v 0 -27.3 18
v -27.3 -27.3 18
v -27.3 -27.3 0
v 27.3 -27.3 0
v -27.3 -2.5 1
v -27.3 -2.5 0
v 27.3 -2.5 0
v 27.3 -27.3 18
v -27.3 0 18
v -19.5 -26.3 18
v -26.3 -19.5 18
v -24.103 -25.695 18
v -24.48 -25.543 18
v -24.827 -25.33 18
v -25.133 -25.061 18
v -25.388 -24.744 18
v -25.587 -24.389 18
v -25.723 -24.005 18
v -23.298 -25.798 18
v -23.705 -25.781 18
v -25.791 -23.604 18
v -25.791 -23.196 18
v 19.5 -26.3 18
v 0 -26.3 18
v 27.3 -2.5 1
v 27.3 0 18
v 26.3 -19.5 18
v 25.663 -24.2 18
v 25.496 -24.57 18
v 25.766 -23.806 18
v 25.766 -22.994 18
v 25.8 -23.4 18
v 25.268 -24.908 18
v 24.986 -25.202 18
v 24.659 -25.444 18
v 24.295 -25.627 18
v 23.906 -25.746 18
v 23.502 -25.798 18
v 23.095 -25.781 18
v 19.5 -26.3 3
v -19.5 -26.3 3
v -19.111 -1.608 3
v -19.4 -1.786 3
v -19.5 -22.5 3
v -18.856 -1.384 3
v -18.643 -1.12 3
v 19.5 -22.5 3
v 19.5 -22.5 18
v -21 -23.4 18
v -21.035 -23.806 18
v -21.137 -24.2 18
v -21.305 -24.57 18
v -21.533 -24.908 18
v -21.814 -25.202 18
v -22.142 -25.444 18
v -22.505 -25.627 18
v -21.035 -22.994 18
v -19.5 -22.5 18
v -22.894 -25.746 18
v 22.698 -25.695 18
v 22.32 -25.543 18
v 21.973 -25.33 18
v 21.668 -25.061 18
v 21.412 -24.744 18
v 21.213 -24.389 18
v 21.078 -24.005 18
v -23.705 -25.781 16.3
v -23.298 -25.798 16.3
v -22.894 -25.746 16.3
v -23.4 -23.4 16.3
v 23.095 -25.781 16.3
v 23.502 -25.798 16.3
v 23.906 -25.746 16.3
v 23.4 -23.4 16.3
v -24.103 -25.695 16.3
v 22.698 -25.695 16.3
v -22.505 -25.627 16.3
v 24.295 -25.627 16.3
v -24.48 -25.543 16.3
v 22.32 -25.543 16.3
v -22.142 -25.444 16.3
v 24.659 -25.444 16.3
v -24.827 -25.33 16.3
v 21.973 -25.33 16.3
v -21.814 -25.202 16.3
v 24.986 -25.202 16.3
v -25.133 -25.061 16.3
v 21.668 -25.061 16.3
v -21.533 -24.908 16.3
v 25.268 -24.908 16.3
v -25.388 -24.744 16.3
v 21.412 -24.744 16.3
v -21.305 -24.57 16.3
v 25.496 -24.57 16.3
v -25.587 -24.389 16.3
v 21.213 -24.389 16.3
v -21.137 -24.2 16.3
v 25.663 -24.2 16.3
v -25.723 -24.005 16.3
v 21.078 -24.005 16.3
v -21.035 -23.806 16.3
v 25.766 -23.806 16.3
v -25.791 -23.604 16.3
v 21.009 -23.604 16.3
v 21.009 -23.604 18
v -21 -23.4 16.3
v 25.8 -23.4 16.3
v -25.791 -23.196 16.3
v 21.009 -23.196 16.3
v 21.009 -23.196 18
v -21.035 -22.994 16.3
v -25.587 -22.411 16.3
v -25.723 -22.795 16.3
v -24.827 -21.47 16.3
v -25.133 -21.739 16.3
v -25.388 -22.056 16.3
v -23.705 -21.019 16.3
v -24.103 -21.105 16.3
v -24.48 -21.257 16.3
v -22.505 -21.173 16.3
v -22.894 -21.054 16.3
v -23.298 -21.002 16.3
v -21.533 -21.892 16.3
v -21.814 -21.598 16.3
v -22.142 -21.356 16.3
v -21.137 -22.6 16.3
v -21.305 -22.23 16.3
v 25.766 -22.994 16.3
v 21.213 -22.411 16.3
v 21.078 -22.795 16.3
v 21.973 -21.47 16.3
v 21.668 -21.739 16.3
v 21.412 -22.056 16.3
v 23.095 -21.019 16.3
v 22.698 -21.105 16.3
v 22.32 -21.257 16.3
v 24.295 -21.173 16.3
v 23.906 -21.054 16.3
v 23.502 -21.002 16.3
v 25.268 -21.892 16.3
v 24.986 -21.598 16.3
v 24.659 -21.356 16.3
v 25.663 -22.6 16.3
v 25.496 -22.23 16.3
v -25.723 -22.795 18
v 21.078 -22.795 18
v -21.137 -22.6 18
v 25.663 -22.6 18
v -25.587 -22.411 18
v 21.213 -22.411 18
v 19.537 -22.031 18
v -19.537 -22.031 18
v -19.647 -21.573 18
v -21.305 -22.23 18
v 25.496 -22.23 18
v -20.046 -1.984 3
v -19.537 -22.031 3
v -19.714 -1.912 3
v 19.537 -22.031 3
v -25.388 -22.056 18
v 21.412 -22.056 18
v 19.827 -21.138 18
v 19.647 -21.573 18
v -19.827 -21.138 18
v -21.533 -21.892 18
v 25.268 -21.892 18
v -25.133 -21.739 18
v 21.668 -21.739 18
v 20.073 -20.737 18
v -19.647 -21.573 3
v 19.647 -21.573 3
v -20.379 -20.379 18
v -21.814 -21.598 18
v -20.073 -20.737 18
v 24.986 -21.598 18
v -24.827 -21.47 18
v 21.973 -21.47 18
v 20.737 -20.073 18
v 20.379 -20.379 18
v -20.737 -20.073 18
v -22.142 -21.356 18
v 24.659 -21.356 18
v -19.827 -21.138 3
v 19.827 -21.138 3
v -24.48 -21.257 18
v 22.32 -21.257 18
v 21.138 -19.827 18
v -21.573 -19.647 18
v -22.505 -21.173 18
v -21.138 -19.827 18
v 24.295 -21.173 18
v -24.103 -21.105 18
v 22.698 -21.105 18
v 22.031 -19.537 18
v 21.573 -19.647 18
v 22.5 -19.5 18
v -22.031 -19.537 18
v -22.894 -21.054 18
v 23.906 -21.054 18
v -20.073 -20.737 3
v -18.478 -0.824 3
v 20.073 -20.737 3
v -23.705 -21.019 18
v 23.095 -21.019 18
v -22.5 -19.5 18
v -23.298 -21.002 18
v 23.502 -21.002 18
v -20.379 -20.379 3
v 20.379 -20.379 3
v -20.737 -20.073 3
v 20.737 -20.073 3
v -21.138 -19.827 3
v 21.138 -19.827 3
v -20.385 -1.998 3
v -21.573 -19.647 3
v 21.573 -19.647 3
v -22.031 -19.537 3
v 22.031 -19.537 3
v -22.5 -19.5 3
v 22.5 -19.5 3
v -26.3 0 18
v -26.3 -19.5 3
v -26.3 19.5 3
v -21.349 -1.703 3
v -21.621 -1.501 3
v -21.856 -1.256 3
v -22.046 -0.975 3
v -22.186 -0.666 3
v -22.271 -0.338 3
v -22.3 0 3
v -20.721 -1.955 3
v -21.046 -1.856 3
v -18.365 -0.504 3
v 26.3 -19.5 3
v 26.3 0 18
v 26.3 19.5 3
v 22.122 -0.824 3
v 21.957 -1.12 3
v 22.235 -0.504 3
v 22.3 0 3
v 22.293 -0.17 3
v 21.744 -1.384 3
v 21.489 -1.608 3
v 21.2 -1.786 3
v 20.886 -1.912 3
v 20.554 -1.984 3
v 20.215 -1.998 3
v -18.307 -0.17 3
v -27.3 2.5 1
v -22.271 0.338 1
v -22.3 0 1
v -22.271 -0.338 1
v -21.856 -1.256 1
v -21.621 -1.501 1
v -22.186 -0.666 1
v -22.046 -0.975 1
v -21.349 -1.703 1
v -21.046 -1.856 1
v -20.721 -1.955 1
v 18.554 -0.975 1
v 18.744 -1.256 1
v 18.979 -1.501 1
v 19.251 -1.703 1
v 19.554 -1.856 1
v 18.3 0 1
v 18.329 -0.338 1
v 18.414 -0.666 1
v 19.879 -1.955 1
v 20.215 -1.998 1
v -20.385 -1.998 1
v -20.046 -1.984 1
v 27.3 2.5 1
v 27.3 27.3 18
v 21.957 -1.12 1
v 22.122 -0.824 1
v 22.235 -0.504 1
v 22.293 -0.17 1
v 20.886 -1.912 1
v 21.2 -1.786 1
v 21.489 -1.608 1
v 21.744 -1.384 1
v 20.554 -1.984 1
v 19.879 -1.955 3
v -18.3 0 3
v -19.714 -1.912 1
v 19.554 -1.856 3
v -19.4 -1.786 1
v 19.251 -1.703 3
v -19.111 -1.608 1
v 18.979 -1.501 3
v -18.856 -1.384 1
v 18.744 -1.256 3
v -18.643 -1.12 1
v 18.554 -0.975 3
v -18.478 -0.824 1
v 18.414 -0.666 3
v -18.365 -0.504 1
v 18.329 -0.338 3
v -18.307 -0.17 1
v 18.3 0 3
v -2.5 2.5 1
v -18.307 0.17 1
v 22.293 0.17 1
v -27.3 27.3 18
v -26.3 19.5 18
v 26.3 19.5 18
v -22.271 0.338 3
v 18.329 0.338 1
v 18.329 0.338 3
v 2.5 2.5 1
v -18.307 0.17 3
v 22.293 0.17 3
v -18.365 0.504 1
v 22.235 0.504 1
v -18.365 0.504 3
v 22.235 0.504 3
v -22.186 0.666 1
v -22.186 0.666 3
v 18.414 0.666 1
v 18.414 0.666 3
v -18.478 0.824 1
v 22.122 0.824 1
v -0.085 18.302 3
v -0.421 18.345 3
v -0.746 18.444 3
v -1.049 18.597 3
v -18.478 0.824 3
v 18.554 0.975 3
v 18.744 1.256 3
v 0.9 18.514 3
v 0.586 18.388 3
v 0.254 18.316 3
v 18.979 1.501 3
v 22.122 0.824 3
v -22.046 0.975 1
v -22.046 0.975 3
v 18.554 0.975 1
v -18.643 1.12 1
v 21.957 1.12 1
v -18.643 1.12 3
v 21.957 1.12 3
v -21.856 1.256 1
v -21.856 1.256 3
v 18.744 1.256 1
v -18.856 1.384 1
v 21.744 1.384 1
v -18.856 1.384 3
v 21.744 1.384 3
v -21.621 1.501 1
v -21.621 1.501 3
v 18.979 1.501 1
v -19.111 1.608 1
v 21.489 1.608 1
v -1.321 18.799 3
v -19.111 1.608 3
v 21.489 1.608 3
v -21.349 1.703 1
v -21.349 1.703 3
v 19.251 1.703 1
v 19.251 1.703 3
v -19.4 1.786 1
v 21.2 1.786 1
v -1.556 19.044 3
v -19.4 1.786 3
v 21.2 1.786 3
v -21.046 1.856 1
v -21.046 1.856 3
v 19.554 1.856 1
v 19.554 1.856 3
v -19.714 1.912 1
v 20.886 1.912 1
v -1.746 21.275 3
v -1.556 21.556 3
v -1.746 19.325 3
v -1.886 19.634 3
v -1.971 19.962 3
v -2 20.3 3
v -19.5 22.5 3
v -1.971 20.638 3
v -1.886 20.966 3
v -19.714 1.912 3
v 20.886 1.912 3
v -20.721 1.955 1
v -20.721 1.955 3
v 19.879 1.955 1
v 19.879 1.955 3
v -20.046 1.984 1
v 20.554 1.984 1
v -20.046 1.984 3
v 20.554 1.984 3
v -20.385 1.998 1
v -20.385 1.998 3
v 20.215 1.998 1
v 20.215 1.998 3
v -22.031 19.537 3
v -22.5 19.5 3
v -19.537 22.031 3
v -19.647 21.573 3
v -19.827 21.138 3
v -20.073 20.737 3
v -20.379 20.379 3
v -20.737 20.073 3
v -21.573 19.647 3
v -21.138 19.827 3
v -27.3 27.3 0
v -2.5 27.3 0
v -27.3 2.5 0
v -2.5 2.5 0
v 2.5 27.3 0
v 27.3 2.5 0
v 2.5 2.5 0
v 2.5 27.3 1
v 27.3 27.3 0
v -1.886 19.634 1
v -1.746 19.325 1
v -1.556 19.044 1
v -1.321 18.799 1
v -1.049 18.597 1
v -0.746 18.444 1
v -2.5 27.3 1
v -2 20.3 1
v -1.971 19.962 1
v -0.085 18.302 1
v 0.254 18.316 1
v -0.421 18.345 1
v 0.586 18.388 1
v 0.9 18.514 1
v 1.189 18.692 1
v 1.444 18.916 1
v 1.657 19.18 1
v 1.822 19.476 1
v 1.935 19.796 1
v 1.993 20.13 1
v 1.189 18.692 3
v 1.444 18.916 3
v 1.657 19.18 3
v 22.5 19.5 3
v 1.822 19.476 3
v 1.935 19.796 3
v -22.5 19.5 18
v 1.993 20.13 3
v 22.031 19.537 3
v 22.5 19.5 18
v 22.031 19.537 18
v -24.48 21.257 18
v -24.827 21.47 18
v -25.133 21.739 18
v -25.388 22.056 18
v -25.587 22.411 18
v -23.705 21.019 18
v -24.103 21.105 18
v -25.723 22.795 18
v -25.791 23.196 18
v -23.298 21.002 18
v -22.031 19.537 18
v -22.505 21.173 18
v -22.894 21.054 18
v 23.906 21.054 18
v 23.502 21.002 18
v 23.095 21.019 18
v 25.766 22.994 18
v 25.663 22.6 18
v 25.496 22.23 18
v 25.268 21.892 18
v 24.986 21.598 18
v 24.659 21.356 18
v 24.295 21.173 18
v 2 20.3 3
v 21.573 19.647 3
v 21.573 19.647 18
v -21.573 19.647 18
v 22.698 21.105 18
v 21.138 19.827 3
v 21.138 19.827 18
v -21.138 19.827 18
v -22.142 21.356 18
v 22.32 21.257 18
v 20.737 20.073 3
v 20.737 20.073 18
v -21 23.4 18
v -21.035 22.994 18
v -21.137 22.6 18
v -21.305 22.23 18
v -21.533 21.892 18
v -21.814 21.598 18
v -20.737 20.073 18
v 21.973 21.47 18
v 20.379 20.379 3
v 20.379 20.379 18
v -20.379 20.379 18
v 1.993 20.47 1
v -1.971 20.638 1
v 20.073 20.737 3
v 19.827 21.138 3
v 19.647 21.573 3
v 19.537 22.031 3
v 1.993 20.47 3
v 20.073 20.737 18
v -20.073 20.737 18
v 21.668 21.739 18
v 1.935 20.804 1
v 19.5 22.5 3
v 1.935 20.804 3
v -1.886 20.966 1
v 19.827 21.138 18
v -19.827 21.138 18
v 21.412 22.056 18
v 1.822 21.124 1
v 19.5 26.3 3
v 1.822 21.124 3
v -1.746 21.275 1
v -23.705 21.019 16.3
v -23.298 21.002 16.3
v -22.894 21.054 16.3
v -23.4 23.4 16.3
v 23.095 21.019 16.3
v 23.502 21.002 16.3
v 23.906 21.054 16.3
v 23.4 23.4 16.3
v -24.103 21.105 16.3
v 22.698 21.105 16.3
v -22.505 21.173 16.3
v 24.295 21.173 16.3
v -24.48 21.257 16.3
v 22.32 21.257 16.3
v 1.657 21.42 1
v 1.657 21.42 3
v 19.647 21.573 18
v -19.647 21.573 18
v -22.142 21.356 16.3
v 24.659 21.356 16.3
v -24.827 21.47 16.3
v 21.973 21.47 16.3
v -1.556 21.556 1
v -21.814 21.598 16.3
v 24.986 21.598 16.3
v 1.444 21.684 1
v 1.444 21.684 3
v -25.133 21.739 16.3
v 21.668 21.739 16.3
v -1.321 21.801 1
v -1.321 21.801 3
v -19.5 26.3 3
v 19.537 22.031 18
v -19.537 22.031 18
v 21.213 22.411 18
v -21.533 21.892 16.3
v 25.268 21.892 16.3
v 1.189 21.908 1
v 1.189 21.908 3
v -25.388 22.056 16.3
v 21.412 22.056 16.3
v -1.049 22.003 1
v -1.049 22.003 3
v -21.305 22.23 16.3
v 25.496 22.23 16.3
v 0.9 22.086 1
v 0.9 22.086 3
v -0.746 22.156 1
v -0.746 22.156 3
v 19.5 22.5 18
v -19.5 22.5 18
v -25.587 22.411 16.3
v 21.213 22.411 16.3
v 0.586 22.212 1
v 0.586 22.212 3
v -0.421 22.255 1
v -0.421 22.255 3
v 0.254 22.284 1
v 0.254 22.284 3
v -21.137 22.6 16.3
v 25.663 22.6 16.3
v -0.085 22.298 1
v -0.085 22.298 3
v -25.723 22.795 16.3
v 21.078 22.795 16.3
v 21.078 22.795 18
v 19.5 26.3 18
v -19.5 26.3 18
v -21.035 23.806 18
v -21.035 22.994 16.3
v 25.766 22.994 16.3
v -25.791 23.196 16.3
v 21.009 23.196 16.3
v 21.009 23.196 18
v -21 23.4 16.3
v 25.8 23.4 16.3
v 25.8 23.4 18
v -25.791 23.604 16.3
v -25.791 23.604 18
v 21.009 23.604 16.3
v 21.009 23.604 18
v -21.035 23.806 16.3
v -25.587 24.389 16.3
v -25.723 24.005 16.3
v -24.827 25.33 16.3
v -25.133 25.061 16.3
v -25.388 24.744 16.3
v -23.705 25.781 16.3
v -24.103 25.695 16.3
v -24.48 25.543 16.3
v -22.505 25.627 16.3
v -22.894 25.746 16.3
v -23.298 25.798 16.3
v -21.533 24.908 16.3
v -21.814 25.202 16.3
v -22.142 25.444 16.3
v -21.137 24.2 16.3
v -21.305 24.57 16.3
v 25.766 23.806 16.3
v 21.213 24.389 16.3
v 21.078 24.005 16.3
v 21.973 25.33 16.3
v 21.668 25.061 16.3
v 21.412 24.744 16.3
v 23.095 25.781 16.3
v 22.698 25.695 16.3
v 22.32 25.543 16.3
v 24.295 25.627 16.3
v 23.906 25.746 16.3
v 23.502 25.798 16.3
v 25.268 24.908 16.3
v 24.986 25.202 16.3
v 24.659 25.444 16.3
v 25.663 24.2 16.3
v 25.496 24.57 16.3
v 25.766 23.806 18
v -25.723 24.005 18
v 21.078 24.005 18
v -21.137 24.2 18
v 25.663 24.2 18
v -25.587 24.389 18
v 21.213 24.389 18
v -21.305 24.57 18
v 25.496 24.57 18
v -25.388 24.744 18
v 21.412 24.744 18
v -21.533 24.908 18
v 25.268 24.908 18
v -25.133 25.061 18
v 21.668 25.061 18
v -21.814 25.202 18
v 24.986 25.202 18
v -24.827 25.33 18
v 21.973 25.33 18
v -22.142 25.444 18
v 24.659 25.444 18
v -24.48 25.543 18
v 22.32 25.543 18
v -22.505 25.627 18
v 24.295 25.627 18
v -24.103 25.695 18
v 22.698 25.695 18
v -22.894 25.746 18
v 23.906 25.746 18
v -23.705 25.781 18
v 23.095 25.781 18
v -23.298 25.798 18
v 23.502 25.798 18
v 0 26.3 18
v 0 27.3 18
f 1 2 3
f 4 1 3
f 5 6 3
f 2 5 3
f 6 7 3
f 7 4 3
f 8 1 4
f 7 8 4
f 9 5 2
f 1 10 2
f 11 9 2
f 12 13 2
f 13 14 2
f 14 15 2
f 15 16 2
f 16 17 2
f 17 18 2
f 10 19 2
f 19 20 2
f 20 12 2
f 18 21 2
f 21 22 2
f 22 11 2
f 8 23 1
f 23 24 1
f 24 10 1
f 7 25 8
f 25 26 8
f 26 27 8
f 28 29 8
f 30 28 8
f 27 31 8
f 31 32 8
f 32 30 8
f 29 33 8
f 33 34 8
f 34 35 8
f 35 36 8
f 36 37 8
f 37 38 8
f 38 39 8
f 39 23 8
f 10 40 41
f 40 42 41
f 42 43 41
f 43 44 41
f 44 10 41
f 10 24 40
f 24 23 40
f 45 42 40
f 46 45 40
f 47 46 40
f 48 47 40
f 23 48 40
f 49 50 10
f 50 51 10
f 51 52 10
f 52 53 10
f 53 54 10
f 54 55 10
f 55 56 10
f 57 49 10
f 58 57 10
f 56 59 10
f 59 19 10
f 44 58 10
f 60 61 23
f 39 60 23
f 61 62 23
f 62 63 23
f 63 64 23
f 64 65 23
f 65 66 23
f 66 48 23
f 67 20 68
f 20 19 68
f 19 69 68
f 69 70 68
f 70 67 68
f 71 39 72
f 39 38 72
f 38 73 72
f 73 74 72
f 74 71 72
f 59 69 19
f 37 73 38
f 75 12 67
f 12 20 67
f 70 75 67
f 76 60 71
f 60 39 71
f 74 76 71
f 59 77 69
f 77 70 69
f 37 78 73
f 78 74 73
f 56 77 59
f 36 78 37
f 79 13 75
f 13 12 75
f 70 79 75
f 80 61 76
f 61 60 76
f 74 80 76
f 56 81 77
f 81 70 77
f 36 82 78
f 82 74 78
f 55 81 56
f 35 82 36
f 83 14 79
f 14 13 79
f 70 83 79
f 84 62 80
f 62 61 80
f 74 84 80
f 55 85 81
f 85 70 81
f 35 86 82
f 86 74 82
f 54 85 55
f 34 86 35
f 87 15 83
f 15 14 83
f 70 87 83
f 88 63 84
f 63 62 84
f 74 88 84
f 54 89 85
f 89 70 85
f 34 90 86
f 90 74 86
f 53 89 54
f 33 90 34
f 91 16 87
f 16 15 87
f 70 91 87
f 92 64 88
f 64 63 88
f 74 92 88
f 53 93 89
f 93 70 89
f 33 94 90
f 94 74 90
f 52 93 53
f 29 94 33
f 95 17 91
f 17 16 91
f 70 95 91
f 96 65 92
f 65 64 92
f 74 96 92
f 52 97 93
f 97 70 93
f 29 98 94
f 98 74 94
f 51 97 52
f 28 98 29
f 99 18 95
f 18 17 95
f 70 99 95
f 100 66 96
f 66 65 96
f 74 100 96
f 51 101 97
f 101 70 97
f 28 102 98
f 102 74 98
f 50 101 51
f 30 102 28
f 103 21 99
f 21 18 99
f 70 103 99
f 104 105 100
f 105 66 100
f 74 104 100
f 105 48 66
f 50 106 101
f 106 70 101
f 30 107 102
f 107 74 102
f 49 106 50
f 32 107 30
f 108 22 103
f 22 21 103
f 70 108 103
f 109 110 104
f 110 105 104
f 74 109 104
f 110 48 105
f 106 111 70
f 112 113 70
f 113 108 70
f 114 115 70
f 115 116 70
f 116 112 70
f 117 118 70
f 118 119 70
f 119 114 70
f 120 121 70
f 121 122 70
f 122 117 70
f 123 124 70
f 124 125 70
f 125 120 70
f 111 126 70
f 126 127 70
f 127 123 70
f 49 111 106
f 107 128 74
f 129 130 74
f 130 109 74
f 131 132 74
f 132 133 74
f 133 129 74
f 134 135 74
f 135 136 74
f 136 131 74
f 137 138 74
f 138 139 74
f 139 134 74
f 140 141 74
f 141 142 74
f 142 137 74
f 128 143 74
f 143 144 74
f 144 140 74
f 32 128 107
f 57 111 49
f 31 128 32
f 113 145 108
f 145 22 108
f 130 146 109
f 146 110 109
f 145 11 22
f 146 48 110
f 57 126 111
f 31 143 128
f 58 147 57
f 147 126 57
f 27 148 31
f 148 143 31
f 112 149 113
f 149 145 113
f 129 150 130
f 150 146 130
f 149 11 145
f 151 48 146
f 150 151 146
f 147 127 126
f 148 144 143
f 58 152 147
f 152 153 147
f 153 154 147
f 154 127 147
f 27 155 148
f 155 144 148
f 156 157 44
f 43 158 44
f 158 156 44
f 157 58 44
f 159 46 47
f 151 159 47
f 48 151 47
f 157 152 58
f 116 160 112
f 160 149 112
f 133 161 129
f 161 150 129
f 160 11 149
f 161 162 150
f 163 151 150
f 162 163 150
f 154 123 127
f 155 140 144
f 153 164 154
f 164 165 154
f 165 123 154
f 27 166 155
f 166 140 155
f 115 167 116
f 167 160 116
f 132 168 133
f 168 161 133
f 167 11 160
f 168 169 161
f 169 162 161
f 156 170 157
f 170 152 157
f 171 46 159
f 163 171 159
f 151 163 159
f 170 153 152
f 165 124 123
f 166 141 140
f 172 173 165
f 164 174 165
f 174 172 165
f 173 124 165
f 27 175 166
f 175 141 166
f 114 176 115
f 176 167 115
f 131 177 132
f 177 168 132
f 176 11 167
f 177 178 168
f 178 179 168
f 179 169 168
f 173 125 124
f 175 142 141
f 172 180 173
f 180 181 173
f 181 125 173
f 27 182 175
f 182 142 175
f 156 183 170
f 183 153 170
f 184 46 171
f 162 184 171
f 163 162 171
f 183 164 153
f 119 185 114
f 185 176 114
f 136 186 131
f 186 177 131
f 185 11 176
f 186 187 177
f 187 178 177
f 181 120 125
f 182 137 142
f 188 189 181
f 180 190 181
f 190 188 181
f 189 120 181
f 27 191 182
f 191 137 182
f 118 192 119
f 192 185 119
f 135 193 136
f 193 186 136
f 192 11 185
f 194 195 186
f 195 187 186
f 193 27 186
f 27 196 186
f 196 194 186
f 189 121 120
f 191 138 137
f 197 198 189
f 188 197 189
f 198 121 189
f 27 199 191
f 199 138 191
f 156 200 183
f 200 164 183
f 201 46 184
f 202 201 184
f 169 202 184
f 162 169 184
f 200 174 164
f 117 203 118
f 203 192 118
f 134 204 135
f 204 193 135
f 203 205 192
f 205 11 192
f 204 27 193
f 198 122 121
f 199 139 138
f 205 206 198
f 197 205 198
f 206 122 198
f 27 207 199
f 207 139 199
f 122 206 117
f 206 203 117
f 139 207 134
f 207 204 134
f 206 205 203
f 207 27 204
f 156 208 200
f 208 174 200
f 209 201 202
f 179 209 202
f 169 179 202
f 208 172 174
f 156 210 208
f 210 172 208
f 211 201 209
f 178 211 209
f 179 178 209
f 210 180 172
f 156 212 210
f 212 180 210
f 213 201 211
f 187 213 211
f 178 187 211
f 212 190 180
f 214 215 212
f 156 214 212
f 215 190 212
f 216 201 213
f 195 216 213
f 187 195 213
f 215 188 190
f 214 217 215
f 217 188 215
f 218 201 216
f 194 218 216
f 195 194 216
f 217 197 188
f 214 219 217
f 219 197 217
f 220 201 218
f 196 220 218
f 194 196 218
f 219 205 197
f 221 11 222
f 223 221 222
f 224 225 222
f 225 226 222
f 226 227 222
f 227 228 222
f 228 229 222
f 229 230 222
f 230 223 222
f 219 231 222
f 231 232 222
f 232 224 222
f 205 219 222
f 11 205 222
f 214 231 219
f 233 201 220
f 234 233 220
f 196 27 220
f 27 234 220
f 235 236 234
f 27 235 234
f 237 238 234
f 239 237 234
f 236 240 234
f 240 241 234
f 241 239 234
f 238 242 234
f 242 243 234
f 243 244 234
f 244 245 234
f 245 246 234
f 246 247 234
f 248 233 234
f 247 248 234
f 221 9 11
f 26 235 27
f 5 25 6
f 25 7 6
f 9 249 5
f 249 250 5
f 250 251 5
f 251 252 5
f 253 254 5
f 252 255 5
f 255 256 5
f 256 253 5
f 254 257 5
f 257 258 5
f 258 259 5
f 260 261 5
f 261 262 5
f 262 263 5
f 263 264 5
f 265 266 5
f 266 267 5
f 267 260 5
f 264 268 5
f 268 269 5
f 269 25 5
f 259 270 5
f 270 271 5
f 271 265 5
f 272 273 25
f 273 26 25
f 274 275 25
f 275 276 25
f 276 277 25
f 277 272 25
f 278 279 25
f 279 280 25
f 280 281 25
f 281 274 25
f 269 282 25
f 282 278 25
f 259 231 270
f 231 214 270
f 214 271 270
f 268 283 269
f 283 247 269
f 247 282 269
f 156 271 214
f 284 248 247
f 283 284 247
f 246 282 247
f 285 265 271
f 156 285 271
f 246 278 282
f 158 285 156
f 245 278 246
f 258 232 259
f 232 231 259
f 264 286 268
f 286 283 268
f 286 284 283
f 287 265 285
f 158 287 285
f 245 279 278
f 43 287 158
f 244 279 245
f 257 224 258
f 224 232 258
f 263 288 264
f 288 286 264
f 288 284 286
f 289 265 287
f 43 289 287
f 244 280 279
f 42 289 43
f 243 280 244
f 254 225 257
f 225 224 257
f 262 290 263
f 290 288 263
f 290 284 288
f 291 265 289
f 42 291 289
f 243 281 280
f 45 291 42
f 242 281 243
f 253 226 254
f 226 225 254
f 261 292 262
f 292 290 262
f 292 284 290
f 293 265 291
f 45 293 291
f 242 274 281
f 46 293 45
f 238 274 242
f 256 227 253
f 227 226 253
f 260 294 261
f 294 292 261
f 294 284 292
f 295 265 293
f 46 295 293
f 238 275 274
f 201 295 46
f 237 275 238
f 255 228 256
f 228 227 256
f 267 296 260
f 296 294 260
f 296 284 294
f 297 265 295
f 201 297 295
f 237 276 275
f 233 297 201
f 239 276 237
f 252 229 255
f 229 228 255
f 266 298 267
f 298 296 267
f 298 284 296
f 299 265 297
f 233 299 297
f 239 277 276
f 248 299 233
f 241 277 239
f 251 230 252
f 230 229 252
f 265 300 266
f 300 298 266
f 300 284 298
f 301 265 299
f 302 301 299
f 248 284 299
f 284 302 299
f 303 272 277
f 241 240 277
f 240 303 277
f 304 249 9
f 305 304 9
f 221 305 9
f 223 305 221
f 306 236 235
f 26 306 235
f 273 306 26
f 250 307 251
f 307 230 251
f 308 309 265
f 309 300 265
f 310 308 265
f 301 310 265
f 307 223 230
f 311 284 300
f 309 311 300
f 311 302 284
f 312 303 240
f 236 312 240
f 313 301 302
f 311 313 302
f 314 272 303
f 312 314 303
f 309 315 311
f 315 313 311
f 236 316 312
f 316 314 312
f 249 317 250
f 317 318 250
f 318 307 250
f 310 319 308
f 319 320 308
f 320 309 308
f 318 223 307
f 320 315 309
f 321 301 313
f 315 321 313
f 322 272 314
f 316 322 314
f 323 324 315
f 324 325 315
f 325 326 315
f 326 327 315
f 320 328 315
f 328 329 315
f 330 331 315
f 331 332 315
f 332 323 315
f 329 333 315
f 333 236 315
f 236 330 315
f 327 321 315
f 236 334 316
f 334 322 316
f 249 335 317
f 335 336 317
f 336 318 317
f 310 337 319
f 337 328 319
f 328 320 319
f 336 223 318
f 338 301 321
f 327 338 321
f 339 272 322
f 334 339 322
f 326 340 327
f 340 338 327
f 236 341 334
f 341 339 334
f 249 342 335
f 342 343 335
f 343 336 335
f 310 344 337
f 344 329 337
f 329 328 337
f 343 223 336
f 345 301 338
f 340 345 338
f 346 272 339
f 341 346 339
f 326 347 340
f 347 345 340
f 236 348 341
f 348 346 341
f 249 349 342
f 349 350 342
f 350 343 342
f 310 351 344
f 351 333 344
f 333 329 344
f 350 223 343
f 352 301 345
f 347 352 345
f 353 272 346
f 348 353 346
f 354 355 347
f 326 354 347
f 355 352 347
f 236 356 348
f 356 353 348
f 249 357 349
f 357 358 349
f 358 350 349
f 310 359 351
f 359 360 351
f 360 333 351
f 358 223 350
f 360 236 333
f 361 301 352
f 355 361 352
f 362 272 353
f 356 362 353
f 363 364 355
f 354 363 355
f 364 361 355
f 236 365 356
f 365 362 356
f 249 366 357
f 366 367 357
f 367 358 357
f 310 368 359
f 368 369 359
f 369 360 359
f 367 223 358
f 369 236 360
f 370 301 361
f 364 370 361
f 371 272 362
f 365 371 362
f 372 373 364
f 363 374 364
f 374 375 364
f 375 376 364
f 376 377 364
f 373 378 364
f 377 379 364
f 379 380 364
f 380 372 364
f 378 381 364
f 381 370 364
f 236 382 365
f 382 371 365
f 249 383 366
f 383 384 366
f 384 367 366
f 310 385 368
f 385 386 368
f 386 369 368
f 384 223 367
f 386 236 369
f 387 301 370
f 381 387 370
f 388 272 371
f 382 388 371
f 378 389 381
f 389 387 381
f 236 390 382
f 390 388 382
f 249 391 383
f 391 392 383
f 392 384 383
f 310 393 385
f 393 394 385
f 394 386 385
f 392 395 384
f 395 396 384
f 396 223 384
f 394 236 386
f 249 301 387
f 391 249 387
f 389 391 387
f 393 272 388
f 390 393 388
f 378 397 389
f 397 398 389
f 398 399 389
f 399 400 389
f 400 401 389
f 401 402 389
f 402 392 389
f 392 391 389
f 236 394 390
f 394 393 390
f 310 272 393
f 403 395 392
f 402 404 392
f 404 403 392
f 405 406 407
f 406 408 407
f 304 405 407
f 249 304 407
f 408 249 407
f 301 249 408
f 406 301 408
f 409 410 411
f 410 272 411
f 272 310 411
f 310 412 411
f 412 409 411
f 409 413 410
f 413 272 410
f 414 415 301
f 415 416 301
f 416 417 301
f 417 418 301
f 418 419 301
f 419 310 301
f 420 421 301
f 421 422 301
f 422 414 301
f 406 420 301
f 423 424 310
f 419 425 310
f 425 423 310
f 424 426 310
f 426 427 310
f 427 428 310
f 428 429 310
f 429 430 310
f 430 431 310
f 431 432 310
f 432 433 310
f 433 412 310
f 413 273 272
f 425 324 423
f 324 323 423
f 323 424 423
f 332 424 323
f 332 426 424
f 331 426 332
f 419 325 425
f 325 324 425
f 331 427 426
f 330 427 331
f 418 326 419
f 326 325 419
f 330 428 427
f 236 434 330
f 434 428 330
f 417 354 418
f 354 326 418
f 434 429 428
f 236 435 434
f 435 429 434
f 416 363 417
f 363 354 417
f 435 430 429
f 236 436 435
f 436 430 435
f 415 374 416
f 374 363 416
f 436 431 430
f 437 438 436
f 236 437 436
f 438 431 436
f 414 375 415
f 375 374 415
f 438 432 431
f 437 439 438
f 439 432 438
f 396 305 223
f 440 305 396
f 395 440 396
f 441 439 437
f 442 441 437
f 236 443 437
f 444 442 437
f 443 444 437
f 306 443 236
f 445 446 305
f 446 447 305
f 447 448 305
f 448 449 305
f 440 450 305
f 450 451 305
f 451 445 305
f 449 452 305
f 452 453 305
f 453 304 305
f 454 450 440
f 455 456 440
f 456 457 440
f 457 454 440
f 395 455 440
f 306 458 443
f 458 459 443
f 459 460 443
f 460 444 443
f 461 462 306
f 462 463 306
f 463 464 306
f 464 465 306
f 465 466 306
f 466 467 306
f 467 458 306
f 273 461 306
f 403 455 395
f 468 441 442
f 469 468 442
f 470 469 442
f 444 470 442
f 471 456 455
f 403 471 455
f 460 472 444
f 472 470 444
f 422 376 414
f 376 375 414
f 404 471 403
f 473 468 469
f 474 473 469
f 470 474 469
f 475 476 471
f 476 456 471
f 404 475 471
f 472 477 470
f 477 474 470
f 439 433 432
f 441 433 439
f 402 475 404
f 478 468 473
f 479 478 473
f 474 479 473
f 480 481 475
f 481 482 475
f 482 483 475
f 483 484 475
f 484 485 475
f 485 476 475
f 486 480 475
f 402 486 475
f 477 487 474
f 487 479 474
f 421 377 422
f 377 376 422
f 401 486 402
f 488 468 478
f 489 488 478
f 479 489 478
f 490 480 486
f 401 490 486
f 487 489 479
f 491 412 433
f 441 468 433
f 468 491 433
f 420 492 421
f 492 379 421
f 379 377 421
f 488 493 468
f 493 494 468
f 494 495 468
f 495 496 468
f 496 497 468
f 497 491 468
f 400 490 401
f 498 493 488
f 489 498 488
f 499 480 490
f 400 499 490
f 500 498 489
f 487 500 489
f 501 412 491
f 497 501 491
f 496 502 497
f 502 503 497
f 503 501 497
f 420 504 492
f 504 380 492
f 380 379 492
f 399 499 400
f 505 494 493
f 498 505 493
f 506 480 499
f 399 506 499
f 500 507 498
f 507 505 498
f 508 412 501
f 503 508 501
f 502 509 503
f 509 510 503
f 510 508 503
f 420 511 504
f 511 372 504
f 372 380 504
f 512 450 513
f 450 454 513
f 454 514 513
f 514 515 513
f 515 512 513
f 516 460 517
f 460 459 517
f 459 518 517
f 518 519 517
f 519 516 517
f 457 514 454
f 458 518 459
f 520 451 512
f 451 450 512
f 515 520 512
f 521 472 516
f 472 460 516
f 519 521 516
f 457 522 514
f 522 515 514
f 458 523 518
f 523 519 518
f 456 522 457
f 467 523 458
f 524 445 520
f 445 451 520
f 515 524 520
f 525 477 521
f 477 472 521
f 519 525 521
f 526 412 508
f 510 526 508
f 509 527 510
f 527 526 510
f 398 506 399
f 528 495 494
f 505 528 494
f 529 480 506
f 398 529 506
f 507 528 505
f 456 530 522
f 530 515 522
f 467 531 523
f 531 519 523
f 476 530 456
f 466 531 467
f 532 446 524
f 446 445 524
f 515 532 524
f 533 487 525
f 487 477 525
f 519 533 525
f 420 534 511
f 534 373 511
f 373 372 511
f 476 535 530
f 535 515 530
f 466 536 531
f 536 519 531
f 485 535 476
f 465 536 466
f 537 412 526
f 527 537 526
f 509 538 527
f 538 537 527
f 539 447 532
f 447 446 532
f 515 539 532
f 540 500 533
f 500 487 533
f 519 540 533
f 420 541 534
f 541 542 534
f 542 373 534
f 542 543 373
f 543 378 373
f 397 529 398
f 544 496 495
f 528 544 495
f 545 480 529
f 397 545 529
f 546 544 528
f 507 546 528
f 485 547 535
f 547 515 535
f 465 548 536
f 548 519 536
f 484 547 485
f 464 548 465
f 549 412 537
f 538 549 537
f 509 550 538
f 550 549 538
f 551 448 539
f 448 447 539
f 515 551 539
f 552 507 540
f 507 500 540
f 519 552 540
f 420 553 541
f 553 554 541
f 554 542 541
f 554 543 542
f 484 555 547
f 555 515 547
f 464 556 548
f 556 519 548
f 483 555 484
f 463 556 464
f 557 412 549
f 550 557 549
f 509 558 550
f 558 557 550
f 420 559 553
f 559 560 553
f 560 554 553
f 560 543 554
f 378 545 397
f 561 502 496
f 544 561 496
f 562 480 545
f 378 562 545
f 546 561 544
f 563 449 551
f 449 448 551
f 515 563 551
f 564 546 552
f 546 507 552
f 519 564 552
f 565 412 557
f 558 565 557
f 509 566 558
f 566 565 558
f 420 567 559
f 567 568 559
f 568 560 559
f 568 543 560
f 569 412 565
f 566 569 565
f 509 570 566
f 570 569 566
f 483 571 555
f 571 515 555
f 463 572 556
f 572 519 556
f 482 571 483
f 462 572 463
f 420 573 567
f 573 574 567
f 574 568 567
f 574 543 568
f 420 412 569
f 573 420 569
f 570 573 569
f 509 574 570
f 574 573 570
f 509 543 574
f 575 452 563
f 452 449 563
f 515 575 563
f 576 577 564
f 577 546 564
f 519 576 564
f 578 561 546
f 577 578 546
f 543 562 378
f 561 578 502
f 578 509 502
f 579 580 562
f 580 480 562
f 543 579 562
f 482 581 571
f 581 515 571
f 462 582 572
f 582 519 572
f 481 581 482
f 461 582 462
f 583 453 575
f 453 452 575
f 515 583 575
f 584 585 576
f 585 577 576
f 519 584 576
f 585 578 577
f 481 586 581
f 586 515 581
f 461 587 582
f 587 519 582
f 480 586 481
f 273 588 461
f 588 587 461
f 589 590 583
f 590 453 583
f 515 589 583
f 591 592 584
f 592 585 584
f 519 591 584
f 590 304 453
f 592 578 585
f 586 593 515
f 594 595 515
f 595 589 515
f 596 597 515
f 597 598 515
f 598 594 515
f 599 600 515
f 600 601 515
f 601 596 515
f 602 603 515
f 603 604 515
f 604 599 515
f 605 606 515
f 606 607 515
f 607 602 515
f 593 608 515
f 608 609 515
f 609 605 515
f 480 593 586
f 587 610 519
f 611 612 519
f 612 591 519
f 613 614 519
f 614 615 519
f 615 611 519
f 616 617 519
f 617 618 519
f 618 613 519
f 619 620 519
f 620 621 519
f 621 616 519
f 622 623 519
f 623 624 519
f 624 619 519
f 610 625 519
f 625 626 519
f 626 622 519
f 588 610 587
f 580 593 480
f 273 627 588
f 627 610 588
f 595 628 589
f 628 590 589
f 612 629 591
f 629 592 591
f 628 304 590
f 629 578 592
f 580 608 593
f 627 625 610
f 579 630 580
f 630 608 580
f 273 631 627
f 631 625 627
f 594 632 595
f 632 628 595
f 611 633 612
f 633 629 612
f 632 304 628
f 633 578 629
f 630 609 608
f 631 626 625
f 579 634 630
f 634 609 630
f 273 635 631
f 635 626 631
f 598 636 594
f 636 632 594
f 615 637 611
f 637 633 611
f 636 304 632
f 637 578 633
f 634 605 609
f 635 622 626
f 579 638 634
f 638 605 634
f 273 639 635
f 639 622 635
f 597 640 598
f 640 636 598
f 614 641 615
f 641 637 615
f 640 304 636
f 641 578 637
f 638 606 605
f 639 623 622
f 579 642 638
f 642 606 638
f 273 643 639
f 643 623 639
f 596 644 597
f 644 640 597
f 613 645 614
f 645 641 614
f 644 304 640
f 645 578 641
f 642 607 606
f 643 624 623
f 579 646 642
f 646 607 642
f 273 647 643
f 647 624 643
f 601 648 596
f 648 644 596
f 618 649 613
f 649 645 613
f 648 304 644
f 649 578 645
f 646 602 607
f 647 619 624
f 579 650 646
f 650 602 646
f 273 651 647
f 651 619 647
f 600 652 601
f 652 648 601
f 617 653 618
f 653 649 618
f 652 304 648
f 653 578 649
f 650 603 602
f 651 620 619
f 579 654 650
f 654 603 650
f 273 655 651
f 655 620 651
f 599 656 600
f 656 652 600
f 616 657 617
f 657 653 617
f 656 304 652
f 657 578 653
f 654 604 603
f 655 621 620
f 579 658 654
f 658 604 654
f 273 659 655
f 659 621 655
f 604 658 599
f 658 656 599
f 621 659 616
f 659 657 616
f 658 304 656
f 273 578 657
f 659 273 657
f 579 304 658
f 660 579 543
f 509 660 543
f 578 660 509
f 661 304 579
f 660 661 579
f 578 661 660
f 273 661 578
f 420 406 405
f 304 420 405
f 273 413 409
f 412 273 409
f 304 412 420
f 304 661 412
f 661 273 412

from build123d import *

# Parameters (mm, degrees)
SKICA1_W                 = 54.6
SKICA1_H                 = 54.6
P_IDAT_VYSUNUT_M2_DEPTH  = 3
SKICA5_W                 = 5
SKICA5_H                 = 24.8
SKICA5_W_2               = 54.6
SKICA5_H_2               = 5
ODEBRAT_VYSUNUT_M3_DEPTH = 1
SKICA14_W                = 52.6
SKICA14_H                = 1
P_IDAT_VYSUNUT_M9_DEPTH  = 15
SKICA17_R                = 2
ODEBRAT_VYSUNUT_M8_DEPTH = 7
SKICA19_W                = 7.8
SKICA19_H                = 7.8
P_IDAT_VYSUNUT_M10_DEPTH = 18
SKICA20_R                = 2.4
ODEBRAT_VYSUNUT_M9_DEPTH = 1.7
ZAOBLIT1_R               = 3


with BuildPart() as part:
    # Skica1 → Přidat vysunutím2 (new body)
    with BuildSketch(Plane.XY):
        Rectangle(SKICA1_W, SKICA1_H)
    extrude(amount=P_IDAT_VYSUNUT_M2_DEPTH)

    # Skica5 → Odebrat vysunutím3 (cut)
    with BuildSketch(Plane(origin=(0, 0, 0), x_dir=(-1, 0, 0), z_dir=(0, 0, -1))):
        with Locations((0, 14.9)):
            Rectangle(SKICA5_W, SKICA5_H)
        Rectangle(SKICA5_W_2, SKICA5_H_2)
    extrude(amount=-ODEBRAT_VYSUNUT_M3_DEPTH, mode=Mode.SUBTRACT)

    # Skica14 → Přidat vysunutím9 (add)
    with BuildSketch(Plane.XY.offset(3)):
        Polygon((27.3, 27.3), (-27.3, 27.3), (-27.3, -27.3), (-26.3, -27.3), (-26.3, -26.3), (-26.3, 26.3), (26.3, 26.3), (26.3, -26.3), (26.3, -27.3), (27.3, -27.3), align=None)
        with Locations((0, -26.8)):
            Rectangle(SKICA14_W, SKICA14_H)
    extrude(amount=P_IDAT_VYSUNUT_M9_DEPTH)

    # Skica17 → Odebrat vysunutím8 (cut)
    with BuildSketch(Plane(origin=(0, 0, 1), x_dir=(-1, 0, 0), z_dir=(0, 0, -1))):
        with Locations((-20.3, 0)):
            Circle(SKICA17_R)
        with Locations((20.3, 0)):
            Circle(SKICA17_R)
        with Locations((0, 20.3)):
            Circle(SKICA17_R)
    extrude(amount=-ODEBRAT_VYSUNUT_M8_DEPTH, mode=Mode.SUBTRACT)

    # Skica19 → Přidat vysunutím10 (add)
    with BuildSketch(Plane(origin=(0, 0, 0), x_dir=(-1, 0, 0), z_dir=(0, 0, -1))):
        with Locations((-23.4, 23.4)):
            Rectangle(SKICA19_W, SKICA19_H)
        with Locations((23.4, 23.4)):
            Rectangle(SKICA19_W, SKICA19_H)
        with Locations((-23.4, -23.4)):
            Rectangle(SKICA19_W, SKICA19_H)
        with Locations((23.4, -23.4)):
            Rectangle(SKICA19_W, SKICA19_H)
    extrude(amount=-P_IDAT_VYSUNUT_M10_DEPTH)

    # Skica20 → Odebrat vysunutím9 (cut)
    with BuildSketch(Plane.XY.offset(18)):
        with Locations((-23.4, -23.4)):
            Circle(SKICA20_R)
        with Locations((-23.4, 23.4)):
            Circle(SKICA20_R)
        with Locations((23.400280565, 23.4)):
            Circle(SKICA20_R)
        with Locations((23.400280565, -23.4)):
            Circle(SKICA20_R)
    extrude(amount=-ODEBRAT_VYSUNUT_M9_DEPTH, mode=Mode.SUBTRACT)

    # Zaoblit1
    zaoblit1_edges = [part.edges().sort_by_distance(p)[0] for p in [
        (-19.5, 19.5, 10.5),
        (19.5, -19.5, 10.5),
        (-19.5, -19.5, 10.5),
        (19.5, 19.5, 10.5),
    ]]
    fillet(zaoblit1_edges, radius=ZAOBLIT1_R)


solid = part.part
